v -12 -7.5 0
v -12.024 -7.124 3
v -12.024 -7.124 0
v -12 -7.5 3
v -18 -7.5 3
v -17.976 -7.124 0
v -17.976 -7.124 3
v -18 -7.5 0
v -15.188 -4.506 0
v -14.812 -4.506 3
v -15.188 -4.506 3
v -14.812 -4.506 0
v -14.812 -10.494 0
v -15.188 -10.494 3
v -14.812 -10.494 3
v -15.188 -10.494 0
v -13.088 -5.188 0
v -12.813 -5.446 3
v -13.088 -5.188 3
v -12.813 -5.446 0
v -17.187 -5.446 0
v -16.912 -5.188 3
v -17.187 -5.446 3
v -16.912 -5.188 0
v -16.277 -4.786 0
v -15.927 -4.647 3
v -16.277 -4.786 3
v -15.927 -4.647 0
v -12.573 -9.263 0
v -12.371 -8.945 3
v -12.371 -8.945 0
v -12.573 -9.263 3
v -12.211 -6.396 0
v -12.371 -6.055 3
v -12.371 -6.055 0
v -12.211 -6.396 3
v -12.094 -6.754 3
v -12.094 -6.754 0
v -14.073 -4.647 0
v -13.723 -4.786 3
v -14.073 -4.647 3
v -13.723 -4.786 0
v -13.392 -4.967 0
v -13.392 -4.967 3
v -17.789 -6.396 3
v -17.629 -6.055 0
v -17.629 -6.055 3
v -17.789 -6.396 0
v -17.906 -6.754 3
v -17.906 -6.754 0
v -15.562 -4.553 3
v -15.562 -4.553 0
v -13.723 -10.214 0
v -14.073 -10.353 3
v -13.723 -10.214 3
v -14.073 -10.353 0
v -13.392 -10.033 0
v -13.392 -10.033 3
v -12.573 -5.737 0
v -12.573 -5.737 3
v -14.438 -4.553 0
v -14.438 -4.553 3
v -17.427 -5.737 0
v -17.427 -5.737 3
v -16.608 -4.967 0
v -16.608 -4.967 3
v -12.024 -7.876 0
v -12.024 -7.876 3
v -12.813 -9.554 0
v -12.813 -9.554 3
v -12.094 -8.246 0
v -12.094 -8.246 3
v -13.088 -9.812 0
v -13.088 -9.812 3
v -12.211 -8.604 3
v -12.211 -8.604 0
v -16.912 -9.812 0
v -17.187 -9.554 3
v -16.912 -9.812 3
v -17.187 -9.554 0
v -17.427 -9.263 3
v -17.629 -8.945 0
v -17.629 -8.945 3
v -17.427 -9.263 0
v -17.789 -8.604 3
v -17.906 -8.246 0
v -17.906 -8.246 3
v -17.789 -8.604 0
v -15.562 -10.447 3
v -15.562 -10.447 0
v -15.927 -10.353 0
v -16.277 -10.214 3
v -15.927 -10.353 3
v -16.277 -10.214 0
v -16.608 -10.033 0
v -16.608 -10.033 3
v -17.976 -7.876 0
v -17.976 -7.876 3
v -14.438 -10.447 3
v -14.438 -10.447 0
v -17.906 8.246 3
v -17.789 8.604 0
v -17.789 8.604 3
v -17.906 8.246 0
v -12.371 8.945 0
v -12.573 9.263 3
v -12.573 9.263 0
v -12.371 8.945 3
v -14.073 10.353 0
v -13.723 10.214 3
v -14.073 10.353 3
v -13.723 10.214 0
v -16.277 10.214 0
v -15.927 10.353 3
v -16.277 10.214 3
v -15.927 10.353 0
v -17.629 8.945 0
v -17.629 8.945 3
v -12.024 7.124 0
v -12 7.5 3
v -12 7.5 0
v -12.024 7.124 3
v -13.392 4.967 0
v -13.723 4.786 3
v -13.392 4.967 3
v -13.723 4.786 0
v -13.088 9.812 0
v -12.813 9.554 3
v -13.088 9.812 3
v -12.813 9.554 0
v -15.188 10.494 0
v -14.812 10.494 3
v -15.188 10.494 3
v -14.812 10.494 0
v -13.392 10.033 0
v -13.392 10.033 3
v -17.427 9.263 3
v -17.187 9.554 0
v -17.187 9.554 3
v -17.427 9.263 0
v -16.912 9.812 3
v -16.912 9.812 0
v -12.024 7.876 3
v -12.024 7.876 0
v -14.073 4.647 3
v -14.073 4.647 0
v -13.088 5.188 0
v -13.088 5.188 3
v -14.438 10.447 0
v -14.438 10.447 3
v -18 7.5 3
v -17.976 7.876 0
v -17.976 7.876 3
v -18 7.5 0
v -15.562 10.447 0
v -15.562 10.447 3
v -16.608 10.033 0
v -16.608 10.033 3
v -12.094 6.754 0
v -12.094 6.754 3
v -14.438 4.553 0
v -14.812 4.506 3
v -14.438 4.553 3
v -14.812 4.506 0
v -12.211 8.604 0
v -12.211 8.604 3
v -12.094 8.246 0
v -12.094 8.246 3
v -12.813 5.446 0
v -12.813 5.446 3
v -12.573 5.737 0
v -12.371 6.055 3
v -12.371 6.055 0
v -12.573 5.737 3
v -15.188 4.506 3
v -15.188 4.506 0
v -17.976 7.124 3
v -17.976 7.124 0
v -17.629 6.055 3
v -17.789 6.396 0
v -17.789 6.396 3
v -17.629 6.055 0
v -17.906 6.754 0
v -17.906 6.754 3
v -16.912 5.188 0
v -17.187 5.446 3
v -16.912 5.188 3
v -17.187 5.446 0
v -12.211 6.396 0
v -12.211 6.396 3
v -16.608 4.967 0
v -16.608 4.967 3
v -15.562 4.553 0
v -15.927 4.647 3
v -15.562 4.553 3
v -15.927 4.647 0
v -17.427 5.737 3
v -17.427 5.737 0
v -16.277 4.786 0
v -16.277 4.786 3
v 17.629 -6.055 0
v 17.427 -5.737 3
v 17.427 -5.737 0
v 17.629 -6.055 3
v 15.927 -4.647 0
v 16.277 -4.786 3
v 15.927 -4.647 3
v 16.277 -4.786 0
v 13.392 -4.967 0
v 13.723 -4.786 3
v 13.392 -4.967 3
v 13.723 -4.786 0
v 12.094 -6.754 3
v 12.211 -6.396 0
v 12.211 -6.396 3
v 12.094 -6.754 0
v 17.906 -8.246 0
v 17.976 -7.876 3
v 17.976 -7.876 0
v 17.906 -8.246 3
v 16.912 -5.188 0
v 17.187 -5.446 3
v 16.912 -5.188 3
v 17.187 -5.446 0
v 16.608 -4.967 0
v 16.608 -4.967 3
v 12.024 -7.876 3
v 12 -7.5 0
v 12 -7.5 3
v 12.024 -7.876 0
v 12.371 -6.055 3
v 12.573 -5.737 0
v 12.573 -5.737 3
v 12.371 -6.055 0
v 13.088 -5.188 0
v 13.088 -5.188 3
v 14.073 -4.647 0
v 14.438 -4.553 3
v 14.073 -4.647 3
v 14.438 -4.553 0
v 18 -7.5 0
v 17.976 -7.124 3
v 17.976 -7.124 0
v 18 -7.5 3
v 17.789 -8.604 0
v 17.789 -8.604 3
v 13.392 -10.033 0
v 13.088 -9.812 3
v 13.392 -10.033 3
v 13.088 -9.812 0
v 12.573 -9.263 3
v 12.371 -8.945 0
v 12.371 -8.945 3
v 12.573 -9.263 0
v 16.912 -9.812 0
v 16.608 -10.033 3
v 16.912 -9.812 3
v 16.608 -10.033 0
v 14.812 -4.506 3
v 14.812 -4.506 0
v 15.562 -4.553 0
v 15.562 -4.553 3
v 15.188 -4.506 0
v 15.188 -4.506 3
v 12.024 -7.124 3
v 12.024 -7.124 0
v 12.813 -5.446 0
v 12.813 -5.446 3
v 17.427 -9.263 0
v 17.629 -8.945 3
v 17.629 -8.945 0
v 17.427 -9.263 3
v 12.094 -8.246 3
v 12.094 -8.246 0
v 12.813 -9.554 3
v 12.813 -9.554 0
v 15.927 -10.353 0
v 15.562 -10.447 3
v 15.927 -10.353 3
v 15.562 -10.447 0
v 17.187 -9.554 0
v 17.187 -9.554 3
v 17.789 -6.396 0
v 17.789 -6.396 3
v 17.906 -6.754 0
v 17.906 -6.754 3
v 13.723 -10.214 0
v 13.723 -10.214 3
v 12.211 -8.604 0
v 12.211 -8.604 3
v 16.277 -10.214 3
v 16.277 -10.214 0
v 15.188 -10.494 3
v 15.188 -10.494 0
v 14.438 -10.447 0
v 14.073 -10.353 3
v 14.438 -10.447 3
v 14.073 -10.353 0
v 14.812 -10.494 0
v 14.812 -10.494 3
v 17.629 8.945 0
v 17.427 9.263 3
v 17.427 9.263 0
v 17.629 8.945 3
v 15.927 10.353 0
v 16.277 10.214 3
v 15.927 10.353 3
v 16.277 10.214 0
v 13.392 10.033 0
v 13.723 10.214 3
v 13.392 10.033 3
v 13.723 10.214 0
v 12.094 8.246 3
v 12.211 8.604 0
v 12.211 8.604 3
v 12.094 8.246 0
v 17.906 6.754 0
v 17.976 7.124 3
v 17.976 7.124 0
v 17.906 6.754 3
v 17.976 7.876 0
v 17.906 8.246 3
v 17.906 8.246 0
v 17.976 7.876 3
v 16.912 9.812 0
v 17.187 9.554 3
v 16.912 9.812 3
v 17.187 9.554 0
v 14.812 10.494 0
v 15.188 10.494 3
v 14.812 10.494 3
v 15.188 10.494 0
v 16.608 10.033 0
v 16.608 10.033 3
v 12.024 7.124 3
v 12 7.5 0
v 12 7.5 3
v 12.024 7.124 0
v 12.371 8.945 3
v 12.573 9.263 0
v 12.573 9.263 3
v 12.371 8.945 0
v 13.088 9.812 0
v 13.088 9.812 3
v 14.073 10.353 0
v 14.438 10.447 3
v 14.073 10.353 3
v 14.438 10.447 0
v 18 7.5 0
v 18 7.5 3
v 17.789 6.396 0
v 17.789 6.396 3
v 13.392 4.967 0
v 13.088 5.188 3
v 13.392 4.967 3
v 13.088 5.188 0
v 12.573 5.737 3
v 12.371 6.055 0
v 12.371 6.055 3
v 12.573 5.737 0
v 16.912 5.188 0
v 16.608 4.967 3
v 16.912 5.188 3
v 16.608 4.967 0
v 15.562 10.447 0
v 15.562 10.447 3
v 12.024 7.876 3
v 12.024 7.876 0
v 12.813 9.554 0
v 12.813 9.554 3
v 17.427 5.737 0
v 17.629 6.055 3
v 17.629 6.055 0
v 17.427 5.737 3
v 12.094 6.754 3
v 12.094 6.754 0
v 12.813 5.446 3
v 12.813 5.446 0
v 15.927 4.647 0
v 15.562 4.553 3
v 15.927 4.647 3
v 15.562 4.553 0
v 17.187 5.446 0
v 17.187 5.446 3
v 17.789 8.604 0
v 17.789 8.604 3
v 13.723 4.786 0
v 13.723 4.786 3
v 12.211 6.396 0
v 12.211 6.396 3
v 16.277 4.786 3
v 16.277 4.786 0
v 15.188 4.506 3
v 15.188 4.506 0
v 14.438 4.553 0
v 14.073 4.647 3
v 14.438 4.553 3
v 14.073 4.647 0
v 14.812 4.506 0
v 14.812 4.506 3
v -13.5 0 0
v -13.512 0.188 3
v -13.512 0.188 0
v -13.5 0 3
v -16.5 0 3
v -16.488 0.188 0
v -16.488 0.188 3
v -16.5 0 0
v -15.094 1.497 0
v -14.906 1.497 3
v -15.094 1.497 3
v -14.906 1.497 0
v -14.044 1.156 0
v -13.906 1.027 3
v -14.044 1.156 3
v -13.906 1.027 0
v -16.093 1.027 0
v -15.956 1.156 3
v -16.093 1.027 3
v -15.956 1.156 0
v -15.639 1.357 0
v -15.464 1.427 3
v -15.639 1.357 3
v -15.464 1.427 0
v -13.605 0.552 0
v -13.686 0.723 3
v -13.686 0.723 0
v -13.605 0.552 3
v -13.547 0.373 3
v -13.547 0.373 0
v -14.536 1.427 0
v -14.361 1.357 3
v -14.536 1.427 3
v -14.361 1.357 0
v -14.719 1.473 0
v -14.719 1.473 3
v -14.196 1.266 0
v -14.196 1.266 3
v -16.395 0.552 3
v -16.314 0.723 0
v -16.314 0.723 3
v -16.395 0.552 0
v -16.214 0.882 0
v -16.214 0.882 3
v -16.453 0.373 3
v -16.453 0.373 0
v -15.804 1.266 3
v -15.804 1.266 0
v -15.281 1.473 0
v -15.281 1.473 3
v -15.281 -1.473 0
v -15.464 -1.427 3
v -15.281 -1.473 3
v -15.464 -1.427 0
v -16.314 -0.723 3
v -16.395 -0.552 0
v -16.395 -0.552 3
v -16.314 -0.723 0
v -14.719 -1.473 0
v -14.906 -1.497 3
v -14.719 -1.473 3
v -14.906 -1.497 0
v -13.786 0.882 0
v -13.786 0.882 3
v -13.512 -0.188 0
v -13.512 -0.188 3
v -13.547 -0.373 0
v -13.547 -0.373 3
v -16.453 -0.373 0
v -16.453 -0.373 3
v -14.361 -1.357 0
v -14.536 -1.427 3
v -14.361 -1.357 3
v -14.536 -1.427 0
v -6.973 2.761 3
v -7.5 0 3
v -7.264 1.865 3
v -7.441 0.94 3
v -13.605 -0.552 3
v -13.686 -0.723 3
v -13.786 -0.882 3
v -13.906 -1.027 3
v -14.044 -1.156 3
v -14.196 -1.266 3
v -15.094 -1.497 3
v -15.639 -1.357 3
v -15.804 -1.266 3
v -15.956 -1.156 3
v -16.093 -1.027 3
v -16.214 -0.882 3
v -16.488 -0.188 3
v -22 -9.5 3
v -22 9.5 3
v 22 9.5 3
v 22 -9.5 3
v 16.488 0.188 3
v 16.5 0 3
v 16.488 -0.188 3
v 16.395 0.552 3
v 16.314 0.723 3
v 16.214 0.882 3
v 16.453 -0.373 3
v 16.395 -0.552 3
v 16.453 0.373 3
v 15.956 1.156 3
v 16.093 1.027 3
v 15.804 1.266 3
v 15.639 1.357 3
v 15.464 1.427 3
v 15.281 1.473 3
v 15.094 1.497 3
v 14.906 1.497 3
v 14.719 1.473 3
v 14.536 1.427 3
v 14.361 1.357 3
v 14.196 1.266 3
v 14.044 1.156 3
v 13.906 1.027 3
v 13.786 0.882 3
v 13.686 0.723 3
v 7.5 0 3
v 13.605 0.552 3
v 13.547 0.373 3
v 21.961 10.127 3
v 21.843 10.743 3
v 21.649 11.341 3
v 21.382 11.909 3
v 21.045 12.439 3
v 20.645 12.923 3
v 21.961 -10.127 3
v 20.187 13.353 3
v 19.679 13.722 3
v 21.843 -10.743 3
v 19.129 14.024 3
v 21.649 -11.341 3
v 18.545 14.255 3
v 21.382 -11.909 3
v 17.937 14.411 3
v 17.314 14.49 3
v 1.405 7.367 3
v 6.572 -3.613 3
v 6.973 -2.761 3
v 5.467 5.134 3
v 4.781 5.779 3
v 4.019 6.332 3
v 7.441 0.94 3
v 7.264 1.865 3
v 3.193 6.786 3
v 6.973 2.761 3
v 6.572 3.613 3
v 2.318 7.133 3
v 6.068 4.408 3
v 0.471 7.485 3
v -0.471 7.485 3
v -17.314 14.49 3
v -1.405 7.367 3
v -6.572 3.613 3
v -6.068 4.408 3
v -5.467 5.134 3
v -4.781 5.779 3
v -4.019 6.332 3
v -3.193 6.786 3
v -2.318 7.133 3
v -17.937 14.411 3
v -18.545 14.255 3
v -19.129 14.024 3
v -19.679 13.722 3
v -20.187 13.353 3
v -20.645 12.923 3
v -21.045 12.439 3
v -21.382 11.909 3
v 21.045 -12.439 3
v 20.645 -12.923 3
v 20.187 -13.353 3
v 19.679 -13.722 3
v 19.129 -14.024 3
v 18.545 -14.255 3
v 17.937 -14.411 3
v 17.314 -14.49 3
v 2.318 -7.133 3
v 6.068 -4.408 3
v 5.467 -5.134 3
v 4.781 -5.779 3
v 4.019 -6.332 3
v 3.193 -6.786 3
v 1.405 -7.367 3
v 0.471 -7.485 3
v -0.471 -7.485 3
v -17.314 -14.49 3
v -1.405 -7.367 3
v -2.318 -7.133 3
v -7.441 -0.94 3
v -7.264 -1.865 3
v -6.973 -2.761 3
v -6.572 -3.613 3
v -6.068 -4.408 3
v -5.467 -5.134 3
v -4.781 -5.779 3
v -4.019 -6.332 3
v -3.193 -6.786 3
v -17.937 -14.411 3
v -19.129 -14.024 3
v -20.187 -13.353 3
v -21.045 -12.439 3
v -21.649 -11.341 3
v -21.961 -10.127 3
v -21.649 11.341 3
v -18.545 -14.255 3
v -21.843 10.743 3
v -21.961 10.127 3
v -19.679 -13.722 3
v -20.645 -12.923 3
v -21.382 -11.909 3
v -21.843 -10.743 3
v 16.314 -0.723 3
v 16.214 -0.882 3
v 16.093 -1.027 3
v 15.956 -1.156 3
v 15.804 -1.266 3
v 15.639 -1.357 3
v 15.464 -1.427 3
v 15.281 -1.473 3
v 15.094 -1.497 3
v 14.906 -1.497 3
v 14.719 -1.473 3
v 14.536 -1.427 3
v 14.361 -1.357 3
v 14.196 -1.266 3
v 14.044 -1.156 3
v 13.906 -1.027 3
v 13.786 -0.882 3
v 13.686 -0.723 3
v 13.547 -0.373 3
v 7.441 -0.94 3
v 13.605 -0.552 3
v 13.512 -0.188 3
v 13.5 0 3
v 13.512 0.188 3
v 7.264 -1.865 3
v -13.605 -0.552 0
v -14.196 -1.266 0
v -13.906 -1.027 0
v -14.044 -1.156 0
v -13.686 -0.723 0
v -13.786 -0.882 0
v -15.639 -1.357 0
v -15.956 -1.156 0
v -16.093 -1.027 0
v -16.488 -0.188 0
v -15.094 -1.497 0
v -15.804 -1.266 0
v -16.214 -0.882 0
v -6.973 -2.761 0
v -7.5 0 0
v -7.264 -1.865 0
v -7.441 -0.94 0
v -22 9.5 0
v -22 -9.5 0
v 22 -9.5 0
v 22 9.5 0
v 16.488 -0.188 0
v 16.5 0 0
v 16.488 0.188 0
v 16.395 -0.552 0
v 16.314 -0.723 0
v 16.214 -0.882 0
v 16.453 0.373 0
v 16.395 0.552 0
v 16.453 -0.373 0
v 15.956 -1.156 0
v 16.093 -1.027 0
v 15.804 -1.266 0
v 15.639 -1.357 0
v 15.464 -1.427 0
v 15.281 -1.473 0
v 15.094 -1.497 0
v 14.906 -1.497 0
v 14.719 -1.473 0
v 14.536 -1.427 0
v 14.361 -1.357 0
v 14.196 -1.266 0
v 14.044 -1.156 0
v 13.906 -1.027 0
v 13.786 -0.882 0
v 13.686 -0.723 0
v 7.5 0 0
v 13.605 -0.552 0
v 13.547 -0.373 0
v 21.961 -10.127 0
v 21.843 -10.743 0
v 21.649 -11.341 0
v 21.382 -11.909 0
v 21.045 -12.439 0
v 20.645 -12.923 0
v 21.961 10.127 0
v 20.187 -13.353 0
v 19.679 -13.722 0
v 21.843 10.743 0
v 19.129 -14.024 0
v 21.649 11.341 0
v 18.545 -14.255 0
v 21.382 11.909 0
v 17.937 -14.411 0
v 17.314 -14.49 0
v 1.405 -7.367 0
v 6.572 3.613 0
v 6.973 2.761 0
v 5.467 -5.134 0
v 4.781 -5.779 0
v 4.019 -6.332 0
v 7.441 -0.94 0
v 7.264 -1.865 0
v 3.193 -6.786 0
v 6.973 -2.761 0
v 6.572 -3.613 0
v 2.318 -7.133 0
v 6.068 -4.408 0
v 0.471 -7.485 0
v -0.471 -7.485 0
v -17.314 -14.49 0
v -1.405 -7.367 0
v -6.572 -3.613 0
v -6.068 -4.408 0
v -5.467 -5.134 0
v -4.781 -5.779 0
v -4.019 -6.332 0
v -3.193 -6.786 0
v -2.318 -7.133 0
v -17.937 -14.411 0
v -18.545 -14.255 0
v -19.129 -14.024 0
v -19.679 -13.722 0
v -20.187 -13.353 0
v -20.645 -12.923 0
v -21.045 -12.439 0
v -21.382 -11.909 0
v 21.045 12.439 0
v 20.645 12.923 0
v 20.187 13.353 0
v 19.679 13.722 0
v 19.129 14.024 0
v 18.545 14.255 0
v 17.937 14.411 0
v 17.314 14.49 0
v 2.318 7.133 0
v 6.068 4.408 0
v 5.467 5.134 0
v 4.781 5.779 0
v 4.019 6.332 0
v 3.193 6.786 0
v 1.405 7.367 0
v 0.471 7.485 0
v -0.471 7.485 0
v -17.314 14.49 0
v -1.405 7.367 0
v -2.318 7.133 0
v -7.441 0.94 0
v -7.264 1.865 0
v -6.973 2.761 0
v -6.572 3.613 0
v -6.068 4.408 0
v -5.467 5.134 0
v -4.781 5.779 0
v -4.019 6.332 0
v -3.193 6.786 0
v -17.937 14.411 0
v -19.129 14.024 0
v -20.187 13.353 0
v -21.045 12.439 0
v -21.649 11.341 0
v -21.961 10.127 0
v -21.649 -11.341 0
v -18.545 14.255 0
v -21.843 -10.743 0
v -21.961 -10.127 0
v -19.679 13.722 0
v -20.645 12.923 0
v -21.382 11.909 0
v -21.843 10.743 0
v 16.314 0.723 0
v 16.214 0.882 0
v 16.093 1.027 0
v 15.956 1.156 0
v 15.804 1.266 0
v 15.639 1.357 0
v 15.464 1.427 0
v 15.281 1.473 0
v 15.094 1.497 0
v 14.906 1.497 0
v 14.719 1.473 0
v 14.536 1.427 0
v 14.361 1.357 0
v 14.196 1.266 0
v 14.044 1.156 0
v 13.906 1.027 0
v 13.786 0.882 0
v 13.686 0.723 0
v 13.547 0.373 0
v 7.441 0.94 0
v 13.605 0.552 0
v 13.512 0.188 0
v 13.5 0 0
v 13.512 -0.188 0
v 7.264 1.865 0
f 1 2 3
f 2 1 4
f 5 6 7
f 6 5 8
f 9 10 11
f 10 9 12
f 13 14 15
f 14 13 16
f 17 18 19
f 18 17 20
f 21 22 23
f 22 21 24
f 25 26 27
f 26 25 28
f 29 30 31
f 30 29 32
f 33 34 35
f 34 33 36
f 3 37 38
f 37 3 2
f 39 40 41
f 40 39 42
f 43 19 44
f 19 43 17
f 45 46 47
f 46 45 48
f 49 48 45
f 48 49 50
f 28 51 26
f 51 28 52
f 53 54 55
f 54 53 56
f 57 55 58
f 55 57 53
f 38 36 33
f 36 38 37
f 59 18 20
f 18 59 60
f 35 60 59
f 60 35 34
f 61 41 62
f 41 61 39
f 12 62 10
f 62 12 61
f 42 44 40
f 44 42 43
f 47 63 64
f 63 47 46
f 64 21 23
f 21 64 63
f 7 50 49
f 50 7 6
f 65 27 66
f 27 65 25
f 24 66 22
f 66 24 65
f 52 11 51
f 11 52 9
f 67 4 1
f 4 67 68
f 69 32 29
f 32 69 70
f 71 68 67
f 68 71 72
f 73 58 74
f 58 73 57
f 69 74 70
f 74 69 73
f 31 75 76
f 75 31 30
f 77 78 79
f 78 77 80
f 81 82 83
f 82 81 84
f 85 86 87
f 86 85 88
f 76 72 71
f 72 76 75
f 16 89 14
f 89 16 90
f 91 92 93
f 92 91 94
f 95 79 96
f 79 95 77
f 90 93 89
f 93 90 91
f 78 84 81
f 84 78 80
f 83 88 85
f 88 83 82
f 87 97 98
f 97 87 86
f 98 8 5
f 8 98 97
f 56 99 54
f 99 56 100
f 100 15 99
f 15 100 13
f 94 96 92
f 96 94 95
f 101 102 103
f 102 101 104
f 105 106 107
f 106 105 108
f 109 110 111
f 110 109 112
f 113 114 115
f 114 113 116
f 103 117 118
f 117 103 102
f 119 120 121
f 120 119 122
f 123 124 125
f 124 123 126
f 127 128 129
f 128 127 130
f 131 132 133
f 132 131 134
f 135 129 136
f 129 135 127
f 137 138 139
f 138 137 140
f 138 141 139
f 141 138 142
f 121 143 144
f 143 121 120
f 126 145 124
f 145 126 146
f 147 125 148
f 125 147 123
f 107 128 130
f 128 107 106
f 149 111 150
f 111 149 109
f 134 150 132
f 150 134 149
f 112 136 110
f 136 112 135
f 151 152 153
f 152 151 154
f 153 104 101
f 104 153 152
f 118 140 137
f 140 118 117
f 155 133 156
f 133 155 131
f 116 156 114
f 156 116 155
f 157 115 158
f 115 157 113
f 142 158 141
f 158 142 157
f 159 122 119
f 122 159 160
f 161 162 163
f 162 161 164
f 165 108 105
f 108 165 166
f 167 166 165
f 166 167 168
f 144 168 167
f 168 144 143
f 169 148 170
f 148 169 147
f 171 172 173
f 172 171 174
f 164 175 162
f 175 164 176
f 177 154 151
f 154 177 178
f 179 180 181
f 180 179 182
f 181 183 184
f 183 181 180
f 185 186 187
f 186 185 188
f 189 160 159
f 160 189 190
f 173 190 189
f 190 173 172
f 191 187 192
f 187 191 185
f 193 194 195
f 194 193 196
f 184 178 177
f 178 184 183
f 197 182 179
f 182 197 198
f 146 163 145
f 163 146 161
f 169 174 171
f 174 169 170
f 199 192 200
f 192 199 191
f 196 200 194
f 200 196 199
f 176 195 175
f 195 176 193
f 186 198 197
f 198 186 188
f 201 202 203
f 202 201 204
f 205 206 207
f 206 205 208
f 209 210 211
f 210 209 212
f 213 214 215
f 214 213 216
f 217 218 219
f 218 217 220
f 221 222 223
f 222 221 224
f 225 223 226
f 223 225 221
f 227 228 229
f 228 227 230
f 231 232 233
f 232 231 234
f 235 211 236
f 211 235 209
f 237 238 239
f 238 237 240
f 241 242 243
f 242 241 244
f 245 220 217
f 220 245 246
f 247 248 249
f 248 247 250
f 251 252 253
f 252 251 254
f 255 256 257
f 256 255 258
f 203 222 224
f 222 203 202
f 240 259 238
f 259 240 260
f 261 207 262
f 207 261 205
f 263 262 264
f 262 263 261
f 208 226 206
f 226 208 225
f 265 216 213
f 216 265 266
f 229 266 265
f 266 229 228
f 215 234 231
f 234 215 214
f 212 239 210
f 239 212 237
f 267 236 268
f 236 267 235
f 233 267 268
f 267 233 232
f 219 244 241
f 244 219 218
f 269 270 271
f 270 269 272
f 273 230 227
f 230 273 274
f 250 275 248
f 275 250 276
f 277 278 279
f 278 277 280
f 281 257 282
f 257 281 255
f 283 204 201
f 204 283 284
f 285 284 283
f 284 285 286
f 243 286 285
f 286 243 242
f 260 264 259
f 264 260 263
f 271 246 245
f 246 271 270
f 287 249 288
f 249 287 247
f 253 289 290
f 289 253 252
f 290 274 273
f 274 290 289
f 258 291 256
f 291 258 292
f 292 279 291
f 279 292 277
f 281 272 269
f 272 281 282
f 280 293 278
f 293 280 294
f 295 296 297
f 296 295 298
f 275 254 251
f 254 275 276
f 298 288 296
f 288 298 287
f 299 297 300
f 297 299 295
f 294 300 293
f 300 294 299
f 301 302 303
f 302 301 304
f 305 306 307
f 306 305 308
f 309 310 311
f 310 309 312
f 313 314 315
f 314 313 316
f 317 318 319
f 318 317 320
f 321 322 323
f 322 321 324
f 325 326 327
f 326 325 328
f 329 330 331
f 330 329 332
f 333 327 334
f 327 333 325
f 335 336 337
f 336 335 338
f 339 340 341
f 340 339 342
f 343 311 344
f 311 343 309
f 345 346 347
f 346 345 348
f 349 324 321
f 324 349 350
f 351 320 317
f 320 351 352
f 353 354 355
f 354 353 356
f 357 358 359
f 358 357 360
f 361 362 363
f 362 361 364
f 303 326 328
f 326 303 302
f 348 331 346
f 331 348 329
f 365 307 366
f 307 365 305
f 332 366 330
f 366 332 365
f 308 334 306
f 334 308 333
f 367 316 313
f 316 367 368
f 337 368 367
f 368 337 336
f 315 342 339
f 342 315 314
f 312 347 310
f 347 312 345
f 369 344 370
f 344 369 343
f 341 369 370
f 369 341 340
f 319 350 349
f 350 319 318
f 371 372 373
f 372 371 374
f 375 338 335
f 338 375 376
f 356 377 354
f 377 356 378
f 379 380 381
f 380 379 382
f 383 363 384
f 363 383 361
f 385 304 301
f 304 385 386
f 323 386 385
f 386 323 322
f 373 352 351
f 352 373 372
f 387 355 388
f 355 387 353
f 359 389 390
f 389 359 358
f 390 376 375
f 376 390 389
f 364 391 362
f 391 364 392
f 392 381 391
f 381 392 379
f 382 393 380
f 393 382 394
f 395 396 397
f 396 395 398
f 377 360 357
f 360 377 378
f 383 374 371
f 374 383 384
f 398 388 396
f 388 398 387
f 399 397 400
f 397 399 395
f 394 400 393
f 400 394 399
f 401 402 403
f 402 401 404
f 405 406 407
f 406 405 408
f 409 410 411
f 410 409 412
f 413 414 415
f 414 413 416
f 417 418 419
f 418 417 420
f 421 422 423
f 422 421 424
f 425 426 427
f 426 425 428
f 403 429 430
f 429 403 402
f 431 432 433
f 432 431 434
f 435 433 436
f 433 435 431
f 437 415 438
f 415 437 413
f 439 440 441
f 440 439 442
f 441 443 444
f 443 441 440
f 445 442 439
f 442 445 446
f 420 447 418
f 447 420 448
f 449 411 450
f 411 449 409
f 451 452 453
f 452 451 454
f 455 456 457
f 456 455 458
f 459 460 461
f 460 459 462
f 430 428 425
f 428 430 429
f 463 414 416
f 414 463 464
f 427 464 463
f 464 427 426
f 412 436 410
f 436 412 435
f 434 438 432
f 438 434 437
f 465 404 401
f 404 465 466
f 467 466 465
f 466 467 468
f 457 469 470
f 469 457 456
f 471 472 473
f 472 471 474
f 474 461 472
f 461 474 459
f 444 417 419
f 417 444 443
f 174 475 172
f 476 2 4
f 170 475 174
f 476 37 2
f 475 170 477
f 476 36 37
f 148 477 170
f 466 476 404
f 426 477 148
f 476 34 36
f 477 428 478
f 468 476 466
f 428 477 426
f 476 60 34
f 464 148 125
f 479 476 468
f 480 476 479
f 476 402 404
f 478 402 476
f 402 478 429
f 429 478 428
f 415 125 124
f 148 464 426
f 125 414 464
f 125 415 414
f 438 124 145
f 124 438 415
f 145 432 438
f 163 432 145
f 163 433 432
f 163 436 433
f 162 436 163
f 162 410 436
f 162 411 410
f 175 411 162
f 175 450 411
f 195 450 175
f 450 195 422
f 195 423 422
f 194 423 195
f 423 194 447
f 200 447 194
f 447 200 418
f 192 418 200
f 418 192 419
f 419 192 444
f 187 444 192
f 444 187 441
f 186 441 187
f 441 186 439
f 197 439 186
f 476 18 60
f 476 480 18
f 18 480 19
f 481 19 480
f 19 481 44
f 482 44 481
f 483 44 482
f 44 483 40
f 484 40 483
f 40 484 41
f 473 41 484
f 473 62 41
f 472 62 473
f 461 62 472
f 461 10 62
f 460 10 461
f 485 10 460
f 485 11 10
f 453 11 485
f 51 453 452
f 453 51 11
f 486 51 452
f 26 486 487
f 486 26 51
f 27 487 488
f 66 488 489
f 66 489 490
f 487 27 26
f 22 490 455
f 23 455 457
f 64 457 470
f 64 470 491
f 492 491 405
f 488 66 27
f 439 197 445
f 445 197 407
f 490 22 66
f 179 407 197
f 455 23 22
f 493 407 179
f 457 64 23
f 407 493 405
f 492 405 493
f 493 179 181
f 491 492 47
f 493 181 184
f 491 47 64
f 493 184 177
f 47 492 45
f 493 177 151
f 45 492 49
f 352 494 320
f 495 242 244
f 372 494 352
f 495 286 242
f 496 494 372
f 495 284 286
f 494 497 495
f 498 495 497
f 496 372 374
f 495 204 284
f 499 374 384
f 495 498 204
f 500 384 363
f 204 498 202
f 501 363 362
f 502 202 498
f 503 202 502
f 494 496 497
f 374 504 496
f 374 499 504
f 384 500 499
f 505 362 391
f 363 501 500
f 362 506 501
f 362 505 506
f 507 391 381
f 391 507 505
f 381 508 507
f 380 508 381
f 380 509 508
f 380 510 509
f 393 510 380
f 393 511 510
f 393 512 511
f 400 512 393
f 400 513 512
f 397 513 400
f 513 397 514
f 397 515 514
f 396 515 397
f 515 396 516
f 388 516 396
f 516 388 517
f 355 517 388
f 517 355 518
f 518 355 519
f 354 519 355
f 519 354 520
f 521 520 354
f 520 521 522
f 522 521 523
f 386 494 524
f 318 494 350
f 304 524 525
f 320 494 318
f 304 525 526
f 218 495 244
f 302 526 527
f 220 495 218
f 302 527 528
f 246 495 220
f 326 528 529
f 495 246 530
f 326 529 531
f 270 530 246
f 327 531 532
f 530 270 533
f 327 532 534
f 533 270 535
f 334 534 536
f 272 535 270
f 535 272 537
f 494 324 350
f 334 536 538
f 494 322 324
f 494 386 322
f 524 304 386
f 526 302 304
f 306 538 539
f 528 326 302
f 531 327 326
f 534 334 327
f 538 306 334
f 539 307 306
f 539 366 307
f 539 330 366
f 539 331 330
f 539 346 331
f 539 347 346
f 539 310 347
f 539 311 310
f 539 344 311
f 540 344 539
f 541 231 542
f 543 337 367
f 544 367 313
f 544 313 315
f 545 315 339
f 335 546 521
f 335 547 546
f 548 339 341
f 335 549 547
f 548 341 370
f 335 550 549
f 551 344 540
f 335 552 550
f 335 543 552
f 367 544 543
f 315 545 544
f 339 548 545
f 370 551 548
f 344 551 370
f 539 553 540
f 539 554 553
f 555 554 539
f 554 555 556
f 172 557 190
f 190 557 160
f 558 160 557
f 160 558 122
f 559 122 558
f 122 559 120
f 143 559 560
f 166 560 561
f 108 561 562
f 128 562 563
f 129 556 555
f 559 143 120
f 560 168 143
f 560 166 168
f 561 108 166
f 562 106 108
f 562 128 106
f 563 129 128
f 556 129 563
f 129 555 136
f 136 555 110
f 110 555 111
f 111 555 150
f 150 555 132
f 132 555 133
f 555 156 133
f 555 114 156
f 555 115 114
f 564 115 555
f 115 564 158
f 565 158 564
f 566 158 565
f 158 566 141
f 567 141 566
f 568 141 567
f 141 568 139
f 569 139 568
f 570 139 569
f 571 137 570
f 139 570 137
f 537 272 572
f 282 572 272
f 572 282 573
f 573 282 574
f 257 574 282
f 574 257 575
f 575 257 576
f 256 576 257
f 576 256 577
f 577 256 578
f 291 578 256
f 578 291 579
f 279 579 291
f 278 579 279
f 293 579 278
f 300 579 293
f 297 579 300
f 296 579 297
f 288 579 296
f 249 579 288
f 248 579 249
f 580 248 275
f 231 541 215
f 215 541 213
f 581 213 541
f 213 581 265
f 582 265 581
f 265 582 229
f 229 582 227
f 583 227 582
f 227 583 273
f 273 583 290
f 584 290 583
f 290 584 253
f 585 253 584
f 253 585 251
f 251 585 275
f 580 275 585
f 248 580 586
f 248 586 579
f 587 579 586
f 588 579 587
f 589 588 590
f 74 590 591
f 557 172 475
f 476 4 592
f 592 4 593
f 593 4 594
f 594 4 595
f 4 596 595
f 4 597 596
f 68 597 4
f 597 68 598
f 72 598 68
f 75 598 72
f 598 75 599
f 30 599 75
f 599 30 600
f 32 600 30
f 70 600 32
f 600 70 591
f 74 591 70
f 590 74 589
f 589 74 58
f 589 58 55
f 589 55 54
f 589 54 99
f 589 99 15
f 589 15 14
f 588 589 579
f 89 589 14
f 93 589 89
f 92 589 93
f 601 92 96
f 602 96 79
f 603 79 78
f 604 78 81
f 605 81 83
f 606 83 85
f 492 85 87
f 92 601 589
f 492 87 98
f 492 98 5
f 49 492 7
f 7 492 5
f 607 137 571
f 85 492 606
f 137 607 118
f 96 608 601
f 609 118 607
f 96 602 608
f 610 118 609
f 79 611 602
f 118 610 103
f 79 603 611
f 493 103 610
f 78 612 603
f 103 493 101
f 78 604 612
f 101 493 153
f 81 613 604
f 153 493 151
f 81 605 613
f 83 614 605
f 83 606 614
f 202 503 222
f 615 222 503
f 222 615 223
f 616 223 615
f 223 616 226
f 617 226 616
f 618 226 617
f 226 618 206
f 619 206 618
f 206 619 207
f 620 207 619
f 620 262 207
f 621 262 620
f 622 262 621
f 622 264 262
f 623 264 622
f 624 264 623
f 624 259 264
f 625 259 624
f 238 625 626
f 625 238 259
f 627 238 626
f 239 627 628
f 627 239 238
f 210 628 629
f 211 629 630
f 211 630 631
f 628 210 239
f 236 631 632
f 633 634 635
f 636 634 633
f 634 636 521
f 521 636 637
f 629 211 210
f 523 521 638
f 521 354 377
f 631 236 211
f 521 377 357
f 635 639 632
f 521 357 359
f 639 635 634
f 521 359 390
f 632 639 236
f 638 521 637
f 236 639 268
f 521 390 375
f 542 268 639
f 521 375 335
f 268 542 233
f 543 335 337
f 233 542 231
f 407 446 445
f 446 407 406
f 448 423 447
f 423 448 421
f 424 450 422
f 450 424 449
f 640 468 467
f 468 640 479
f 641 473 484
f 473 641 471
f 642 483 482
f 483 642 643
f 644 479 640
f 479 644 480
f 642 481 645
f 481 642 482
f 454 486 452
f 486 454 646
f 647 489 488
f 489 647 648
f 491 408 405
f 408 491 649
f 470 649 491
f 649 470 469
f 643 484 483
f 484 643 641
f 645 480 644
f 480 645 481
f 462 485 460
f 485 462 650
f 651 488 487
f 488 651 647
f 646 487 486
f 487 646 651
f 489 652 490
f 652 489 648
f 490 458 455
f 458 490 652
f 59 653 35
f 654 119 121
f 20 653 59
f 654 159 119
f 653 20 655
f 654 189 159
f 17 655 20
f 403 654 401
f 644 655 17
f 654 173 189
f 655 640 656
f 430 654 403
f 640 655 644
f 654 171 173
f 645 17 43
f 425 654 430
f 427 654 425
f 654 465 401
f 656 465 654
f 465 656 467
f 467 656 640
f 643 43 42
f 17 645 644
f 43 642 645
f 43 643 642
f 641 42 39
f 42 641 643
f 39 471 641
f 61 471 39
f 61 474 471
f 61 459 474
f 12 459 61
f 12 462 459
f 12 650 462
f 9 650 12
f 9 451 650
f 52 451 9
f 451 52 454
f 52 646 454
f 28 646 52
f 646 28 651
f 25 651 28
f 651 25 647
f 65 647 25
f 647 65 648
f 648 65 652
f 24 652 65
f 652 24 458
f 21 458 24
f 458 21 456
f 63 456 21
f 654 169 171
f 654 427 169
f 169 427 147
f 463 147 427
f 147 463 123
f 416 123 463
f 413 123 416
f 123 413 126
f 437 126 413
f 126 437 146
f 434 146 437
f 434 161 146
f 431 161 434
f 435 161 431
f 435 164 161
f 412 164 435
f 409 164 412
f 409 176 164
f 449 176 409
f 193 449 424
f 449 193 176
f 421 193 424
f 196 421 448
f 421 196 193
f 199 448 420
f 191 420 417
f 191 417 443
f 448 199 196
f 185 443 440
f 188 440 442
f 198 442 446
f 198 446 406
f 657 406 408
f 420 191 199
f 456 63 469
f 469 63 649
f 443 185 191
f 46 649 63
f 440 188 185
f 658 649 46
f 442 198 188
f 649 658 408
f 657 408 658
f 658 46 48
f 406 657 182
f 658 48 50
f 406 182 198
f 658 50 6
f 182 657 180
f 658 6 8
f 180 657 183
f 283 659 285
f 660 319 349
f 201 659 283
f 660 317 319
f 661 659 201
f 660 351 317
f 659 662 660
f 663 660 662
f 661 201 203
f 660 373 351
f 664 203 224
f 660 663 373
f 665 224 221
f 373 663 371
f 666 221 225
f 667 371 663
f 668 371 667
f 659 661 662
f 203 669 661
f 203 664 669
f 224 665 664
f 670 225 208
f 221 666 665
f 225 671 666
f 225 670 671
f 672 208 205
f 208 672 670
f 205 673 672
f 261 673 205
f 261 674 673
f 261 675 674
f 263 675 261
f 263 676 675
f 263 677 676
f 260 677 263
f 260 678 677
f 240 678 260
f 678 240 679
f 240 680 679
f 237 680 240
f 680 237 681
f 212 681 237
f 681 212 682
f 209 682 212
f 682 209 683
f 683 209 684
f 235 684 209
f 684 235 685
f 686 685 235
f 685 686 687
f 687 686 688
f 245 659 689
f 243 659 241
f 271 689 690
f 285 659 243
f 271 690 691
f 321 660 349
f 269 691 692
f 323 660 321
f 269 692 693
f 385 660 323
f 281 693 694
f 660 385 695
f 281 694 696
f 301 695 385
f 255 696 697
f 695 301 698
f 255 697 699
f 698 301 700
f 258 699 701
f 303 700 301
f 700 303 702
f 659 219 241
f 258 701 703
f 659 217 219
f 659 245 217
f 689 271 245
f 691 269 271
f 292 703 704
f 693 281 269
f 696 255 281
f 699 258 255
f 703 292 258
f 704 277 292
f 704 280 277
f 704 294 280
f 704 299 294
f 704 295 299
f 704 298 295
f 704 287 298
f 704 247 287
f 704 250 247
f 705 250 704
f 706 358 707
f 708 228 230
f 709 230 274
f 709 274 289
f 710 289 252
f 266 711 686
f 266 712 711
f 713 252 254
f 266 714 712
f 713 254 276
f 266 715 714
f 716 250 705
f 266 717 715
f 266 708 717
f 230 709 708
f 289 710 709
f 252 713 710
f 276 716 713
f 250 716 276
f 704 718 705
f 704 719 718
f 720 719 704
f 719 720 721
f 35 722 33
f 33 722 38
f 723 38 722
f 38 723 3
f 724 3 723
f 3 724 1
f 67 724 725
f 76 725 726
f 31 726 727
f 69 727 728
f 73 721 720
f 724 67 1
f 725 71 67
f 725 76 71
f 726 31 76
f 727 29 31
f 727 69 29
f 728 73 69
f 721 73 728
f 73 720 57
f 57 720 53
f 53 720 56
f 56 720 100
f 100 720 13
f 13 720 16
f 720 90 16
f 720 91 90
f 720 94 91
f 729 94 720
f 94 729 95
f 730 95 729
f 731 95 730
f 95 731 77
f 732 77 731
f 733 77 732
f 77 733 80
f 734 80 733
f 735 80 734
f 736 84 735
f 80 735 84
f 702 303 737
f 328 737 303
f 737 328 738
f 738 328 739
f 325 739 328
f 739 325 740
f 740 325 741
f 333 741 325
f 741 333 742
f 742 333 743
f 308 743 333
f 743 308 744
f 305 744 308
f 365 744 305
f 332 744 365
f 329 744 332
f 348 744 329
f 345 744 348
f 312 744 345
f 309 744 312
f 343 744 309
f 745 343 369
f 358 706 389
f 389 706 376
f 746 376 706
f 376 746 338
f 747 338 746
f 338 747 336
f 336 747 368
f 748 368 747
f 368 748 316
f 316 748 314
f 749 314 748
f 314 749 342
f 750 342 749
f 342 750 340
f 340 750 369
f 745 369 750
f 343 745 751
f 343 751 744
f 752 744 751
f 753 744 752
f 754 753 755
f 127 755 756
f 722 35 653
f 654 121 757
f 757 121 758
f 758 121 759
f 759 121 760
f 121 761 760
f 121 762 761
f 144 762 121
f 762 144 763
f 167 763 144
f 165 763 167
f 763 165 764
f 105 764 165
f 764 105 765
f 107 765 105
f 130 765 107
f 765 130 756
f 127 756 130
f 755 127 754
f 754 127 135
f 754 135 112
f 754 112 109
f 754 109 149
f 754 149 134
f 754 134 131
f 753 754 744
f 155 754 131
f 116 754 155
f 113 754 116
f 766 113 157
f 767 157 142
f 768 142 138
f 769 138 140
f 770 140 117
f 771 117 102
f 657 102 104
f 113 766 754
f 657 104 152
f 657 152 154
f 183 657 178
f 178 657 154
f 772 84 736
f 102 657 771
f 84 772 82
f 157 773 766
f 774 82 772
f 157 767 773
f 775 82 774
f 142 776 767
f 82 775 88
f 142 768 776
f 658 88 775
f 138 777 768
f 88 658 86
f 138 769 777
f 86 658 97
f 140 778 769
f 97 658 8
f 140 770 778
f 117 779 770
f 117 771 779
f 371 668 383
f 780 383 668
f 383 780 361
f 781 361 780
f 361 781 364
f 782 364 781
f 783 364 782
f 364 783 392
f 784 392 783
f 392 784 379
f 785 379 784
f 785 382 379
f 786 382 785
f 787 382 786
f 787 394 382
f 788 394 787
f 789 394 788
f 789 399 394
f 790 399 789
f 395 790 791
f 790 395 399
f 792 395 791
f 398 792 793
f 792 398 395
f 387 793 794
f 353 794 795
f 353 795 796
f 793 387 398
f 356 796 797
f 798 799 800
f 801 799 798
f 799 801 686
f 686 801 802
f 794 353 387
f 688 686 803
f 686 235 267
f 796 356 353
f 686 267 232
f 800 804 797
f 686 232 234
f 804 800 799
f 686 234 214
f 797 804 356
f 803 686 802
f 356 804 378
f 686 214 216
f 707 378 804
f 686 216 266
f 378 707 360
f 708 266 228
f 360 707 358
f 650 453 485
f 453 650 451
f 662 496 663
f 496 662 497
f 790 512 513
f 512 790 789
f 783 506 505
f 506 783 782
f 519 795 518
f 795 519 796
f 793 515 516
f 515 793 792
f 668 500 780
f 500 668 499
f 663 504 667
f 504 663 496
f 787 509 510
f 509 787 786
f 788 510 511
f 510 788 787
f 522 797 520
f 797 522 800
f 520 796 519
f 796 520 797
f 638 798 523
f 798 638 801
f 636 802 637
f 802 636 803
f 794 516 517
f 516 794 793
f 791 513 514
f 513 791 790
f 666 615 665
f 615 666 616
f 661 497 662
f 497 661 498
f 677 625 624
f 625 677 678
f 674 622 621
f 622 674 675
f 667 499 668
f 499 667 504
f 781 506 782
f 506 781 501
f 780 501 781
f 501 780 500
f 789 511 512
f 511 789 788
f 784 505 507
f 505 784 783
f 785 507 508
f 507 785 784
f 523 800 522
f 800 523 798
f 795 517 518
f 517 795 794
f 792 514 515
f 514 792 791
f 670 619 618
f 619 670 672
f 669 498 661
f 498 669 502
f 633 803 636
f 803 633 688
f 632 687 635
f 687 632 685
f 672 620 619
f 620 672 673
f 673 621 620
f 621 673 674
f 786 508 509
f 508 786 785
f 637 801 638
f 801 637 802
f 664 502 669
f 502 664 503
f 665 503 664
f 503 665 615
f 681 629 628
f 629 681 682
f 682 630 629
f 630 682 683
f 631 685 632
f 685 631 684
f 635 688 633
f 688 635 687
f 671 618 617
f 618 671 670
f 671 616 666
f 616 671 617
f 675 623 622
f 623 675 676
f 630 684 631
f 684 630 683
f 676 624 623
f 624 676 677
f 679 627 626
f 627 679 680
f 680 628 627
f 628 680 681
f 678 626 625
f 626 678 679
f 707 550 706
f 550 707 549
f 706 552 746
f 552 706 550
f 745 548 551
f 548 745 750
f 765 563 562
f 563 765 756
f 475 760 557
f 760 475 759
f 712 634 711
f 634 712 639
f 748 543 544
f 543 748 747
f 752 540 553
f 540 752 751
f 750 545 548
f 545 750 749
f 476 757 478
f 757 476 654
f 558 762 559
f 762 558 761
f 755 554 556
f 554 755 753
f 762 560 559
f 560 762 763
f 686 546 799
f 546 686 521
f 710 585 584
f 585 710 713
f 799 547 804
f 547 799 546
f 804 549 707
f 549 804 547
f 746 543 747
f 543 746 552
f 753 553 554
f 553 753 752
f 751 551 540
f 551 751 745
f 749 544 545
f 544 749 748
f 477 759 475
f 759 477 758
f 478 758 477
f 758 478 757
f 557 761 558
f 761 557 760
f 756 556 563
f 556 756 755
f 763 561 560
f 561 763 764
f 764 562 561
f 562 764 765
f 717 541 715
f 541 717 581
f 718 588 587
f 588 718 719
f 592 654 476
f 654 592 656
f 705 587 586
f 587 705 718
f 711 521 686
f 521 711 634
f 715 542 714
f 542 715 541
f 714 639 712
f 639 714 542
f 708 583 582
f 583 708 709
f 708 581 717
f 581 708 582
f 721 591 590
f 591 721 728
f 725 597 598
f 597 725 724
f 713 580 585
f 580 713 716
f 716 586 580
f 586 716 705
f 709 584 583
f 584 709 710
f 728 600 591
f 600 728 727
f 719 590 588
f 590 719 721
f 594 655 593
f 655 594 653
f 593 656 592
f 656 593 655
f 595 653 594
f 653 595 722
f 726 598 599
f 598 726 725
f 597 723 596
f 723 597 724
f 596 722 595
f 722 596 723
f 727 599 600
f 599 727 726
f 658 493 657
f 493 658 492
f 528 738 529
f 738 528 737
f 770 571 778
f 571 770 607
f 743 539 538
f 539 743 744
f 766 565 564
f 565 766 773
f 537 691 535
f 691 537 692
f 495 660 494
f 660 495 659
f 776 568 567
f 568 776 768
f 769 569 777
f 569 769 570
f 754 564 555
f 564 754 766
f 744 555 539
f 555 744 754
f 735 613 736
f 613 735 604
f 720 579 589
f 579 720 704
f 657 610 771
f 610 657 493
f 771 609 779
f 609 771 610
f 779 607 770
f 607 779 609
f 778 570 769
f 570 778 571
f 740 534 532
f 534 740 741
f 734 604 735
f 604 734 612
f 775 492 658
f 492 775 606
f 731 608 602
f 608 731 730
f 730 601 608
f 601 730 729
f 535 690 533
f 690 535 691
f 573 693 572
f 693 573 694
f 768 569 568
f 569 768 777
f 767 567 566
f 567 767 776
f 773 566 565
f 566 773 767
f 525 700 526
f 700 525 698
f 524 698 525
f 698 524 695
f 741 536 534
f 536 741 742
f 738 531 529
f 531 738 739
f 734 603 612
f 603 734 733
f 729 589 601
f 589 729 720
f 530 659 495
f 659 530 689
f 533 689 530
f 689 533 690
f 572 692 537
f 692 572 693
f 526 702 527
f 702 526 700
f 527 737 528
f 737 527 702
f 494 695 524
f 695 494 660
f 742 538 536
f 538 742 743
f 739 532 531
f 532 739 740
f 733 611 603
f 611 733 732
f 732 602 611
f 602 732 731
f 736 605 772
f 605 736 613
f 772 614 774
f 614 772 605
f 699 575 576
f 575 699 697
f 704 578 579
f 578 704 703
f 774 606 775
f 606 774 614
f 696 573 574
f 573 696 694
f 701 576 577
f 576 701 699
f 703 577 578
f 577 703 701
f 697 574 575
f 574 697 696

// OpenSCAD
$fn = 50;


difference() {
	union() {
		hull() {
			translate(v = [-17.0000000000, 9.5000000000, 0]) {
				cylinder(h = 3, r = 5);
			}
			translate(v = [17.0000000000, 9.5000000000, 0]) {
				cylinder(h = 3, r = 5);
			}
			translate(v = [-17.0000000000, -9.5000000000, 0]) {
				cylinder(h = 3, r = 5);
			}
			translate(v = [17.0000000000, -9.5000000000, 0]) {
				cylinder(h = 3, r = 5);
			}
		}
	}
	union() {
		#translate(v = [-15.0000000000, -7.5000000000, 0]) {
			cylinder(h = 3, r = 3.0000000000);
		}
		#translate(v = [-15.0000000000, 7.5000000000, 0]) {
			cylinder(h = 3, r = 3.0000000000);
		}
		#translate(v = [15.0000000000, -7.5000000000, 0]) {
			cylinder(h = 3, r = 3.0000000000);
		}
		#translate(v = [15.0000000000, 7.5000000000, 0]) {
			cylinder(h = 3, r = 3.0000000000);
		}
		#translate(v = [-15.0000000000, -7.5000000000, -100.0000000000]) {
			cylinder(h = 200, r = 3.0000000000);
		}
		#translate(v = [-15.0000000000, 7.5000000000, -100.0000000000]) {
			cylinder(h = 200, r = 3.0000000000);
		}
		#translate(v = [15.0000000000, -7.5000000000, -100.0000000000]) {
			cylinder(h = 200, r = 3.0000000000);
		}
		#translate(v = [15.0000000000, 7.5000000000, -100.0000000000]) {
			cylinder(h = 200, r = 3.0000000000);
		}
		#translate(v = [-15.0000000000, -7.5000000000, 0]) {
			cylinder(h = 3, r = 1.5000000000);
		}
		#translate(v = [-15.0000000000, 0.0000000000, 0]) {
			cylinder(h = 3, r = 1.5000000000);
		}
		#translate(v = [-15.0000000000, 7.5000000000, 0]) {
			cylinder(h = 3, r = 1.5000000000);
		}
		#translate(v = [15.0000000000, -7.5000000000, 0]) {
			cylinder(h = 3, r = 1.5000000000);
		}
		#translate(v = [15.0000000000, 0.0000000000, 0]) {
			cylinder(h = 3, r = 1.5000000000);
		}
		#translate(v = [15.0000000000, 7.5000000000, 0]) {
			cylinder(h = 3, r = 1.5000000000);
		}
		#translate(v = [-15.0000000000, -7.5000000000, 0]) {
			cylinder(h = 3, r = 1.5000000000);
		}
		#translate(v = [-15.0000000000, 0.0000000000, 0]) {
			cylinder(h = 3, r = 1.5000000000);
		}
		#translate(v = [-15.0000000000, 7.5000000000, 0]) {
			cylinder(h = 3, r = 1.5000000000);
		}
		#translate(v = [15.0000000000, -7.5000000000, 0]) {
			cylinder(h = 3, r = 1.5000000000);
		}
		#translate(v = [15.0000000000, 0.0000000000, 0]) {
			cylinder(h = 3, r = 1.5000000000);
		}
		#translate(v = [15.0000000000, 7.5000000000, 0]) {
			cylinder(h = 3, r = 1.5000000000);
		}
		#translate(v = [-15.0000000000, -7.5000000000, 0]) {
			cylinder(h = 3, r = 1.5000000000);
		}
		#translate(v = [-15.0000000000, 0.0000000000, 0]) {
			cylinder(h = 3, r = 1.5000000000);
		}
		#translate(v = [-15.0000000000, 7.5000000000, 0]) {
			cylinder(h = 3, r = 1.5000000000);
		}
		#translate(v = [15.0000000000, -7.5000000000, 0]) {
			cylinder(h = 3, r = 1.5000000000);
		}
		#translate(v = [15.0000000000, 0.0000000000, 0]) {
			cylinder(h = 3, r = 1.5000000000);
		}
		#translate(v = [15.0000000000, 7.5000000000, 0]) {
			cylinder(h = 3, r = 1.5000000000);
		}
		#cylinder(h = 3, r = 7.5000000000);
	}
}
